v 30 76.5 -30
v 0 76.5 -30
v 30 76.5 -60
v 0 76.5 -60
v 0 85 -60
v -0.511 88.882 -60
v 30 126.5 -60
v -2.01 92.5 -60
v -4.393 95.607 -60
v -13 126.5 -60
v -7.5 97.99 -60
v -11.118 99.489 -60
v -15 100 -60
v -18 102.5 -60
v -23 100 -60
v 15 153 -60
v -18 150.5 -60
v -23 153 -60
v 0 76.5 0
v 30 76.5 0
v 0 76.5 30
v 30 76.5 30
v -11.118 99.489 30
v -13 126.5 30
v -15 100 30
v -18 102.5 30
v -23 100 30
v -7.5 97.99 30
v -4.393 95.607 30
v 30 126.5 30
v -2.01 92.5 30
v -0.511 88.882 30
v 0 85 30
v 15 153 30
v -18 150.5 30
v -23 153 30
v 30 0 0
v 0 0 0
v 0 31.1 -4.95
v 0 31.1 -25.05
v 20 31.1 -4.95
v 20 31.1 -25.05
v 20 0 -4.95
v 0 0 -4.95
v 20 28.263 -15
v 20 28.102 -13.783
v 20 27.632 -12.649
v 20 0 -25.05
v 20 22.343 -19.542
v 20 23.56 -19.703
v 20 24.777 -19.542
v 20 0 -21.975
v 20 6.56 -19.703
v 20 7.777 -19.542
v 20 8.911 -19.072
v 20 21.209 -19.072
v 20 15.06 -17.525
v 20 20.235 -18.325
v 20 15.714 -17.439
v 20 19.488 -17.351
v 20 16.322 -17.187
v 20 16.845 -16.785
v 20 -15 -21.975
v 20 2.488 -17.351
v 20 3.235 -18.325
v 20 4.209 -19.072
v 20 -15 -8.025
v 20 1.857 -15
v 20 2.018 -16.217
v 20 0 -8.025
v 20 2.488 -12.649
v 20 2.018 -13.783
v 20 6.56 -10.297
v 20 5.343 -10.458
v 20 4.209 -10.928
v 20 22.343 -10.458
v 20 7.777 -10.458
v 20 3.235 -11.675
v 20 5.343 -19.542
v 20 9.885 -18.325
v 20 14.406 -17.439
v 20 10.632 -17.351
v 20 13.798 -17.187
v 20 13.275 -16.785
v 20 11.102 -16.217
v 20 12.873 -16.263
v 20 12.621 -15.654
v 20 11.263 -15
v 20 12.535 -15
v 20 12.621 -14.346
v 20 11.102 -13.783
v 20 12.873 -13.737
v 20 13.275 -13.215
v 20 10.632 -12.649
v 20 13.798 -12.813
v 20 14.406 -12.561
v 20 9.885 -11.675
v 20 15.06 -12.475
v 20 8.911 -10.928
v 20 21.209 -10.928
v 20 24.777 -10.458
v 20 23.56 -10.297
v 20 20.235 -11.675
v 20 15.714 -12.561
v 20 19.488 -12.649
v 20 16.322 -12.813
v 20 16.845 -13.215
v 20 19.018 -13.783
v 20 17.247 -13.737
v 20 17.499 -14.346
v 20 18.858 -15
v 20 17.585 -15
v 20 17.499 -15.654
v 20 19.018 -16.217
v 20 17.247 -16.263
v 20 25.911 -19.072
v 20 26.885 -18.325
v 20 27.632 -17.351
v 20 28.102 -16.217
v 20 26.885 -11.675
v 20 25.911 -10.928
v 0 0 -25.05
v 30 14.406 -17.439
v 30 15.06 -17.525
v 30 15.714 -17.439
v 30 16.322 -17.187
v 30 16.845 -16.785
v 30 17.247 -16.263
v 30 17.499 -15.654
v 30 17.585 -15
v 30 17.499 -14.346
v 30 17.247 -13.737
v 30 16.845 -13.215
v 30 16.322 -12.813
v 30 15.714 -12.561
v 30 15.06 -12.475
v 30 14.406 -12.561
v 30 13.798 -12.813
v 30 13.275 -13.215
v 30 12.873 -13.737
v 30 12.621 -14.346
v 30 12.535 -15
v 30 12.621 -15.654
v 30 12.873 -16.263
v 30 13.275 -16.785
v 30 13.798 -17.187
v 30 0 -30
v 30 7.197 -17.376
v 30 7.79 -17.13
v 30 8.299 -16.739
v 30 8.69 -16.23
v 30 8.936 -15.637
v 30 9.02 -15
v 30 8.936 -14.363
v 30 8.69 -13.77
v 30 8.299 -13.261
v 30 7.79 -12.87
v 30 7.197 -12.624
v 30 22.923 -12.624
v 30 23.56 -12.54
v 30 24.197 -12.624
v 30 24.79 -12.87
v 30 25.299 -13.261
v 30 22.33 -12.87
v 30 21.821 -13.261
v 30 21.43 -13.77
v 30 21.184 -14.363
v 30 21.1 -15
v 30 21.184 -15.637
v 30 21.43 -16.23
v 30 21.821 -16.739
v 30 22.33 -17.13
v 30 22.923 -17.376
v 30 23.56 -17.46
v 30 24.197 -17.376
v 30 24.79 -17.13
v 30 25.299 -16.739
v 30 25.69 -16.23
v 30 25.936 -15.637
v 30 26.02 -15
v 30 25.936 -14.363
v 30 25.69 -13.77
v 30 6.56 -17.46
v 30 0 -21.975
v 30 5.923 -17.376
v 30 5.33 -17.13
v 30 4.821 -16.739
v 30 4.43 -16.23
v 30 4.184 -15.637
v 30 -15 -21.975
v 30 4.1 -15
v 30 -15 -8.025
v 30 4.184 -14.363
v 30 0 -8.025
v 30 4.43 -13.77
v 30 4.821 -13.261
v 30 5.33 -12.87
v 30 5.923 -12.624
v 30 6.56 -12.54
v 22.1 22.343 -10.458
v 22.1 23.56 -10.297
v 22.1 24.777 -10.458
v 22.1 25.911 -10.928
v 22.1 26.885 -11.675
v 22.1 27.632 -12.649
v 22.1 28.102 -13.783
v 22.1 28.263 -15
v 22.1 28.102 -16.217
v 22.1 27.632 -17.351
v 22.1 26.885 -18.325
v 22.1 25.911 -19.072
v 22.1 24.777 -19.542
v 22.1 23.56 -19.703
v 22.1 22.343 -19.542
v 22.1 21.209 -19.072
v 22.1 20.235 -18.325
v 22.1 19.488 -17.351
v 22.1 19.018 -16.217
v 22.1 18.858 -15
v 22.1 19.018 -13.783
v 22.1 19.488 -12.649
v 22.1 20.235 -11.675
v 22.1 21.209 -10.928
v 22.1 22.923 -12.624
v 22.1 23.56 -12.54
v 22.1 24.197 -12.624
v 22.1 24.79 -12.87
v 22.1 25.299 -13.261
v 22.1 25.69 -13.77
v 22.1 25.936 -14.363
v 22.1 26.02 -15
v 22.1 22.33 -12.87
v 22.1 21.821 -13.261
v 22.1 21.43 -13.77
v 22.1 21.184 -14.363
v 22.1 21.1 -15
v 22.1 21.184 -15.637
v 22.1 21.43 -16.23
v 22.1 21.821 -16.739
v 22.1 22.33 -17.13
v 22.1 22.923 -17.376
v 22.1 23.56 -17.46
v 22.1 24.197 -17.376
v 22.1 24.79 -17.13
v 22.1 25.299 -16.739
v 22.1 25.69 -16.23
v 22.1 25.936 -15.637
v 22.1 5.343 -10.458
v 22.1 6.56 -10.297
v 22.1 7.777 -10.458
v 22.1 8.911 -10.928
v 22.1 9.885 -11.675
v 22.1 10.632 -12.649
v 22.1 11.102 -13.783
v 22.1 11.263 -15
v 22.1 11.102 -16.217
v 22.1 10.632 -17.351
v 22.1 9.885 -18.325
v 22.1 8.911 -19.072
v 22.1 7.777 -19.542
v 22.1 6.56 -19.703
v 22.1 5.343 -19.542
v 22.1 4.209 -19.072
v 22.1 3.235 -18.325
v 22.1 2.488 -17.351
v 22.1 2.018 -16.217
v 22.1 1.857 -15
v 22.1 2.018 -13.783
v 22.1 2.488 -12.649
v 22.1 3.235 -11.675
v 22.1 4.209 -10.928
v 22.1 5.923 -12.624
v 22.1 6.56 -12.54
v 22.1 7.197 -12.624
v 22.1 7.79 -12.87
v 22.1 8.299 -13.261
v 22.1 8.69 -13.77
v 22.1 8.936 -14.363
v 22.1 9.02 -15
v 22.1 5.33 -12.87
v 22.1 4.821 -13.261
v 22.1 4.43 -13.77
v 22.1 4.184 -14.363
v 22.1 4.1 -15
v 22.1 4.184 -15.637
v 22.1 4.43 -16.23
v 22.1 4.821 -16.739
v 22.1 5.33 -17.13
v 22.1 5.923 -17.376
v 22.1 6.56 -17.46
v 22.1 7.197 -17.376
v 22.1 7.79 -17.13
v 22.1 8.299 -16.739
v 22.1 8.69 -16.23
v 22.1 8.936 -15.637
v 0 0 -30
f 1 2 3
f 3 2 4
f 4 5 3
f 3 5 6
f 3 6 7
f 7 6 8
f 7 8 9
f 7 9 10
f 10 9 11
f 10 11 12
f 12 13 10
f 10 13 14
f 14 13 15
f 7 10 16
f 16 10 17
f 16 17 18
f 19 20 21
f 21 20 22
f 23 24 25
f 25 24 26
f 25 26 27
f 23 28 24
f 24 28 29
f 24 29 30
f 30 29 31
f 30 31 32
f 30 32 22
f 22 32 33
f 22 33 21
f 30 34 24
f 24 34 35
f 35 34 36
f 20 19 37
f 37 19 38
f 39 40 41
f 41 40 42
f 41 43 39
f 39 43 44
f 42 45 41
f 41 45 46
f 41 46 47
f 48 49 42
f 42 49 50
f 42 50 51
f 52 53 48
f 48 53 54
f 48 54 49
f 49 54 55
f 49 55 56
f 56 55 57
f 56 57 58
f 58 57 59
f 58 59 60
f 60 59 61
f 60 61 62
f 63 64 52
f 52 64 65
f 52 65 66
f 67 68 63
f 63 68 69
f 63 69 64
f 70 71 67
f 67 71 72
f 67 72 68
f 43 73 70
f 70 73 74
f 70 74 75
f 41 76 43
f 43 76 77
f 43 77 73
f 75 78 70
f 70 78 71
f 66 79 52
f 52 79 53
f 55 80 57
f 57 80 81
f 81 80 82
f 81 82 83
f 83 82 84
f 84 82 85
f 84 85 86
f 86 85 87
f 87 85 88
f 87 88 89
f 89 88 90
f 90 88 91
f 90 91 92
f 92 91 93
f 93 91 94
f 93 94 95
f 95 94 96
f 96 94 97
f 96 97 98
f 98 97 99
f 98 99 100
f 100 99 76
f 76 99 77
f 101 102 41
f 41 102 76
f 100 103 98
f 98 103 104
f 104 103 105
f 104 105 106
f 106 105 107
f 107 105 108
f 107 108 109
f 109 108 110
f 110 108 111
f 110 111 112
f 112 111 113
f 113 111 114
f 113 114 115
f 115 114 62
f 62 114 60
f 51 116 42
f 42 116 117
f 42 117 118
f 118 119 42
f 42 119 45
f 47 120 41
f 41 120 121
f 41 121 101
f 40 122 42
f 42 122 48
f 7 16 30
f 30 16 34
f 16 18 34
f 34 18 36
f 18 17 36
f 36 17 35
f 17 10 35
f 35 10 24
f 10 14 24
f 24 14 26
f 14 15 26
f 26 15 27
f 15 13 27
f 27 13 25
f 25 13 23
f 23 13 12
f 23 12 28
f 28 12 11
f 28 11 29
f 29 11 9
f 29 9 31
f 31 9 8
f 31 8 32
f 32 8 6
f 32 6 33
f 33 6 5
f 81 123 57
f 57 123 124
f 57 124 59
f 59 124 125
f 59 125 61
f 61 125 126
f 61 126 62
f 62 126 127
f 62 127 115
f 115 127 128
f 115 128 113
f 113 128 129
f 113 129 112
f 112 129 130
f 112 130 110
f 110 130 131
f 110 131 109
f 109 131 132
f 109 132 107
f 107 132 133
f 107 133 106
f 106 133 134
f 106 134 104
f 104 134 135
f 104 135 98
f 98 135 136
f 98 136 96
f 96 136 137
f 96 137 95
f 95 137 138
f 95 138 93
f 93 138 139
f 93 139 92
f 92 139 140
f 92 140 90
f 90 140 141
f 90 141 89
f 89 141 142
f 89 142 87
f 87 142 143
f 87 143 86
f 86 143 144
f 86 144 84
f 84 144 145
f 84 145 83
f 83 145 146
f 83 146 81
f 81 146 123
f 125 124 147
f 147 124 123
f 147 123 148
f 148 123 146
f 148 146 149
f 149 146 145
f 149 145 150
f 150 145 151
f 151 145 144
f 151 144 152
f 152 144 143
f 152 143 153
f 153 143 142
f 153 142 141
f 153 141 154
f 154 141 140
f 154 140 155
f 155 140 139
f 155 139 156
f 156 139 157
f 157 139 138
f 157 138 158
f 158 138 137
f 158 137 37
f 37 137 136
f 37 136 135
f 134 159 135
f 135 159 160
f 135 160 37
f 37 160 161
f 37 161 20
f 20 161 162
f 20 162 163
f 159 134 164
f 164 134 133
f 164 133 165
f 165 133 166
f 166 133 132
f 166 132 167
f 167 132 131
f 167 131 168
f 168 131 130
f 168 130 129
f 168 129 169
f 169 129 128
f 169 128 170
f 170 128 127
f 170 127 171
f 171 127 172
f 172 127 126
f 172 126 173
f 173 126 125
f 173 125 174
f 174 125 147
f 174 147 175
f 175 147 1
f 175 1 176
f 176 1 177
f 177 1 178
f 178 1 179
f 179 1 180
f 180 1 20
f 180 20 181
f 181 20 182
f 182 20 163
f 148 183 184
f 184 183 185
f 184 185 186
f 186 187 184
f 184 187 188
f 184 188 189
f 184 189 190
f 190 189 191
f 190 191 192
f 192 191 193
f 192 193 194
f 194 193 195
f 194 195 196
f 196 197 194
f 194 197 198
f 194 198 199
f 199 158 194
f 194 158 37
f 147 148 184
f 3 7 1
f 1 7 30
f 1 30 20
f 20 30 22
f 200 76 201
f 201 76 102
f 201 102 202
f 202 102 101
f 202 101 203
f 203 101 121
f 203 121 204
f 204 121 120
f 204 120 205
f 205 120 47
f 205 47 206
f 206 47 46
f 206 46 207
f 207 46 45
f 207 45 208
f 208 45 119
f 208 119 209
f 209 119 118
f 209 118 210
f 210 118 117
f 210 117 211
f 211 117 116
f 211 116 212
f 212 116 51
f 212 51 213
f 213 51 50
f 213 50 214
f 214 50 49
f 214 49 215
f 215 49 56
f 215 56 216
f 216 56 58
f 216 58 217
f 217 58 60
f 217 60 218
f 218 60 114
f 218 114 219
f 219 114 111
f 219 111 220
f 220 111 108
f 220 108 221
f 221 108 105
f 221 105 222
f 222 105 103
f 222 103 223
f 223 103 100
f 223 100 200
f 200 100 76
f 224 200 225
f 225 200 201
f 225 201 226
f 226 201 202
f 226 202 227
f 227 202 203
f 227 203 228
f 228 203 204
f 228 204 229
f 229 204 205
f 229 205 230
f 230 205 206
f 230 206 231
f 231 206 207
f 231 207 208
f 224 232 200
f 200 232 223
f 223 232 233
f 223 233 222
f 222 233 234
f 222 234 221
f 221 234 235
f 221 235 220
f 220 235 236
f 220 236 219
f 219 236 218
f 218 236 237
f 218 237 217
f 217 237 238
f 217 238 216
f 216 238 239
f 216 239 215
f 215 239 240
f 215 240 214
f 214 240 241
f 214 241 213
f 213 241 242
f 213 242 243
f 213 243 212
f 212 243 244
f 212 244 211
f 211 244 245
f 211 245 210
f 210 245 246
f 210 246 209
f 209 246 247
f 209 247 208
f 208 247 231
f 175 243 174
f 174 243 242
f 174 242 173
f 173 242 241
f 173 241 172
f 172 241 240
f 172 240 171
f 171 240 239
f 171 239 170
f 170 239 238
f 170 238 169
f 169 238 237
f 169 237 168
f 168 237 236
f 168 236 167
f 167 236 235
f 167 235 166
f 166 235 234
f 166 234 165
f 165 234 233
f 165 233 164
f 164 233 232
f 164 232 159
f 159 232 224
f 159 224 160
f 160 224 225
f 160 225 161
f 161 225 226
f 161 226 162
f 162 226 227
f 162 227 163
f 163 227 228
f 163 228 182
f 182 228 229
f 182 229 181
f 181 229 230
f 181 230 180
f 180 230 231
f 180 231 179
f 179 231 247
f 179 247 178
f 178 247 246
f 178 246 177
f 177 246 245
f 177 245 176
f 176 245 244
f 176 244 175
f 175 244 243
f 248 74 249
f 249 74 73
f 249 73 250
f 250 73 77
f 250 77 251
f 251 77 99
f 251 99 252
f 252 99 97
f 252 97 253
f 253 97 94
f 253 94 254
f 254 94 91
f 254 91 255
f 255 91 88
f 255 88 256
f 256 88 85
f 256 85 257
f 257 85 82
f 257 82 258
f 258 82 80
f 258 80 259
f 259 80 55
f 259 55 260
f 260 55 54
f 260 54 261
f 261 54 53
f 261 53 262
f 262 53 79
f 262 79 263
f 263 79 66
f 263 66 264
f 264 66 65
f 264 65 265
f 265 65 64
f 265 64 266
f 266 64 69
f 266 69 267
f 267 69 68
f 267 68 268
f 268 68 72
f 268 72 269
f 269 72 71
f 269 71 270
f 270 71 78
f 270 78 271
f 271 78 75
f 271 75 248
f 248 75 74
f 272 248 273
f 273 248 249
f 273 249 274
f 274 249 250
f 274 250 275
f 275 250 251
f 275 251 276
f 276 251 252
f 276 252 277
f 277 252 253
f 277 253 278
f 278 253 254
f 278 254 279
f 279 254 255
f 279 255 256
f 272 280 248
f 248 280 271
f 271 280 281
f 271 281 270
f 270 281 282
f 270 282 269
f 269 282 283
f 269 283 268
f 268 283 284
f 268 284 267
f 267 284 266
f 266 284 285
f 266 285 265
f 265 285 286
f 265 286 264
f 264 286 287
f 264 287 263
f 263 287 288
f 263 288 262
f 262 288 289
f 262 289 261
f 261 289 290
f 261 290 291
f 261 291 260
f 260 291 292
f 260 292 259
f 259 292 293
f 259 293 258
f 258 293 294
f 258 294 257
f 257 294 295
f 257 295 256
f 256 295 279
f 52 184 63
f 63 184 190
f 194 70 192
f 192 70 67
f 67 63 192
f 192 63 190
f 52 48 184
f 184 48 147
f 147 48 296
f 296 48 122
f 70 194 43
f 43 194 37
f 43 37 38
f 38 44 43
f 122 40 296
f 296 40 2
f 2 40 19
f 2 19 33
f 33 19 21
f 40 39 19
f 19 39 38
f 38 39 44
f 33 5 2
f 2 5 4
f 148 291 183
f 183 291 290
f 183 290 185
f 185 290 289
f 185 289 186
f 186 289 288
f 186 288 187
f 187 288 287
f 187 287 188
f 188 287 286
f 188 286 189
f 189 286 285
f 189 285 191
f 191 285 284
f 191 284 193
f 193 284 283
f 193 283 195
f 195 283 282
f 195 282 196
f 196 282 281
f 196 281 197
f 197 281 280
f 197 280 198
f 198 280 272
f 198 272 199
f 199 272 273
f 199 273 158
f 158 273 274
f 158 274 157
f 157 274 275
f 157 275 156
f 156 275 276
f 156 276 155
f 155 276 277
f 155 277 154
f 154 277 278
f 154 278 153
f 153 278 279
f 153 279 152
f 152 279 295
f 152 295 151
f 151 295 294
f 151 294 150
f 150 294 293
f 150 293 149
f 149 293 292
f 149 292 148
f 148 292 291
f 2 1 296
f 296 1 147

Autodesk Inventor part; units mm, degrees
ref_plane "YZ Plane" through (0, 0, 0) normal (1, 0, 0) x (0, 1, 0)
ref_plane "XZ Plane" through (0, 0, 0) normal (0, 1, 0) x (-1, 0, 0)
sketch "Sketch1" plane through (0, 0, 0) normal (0, 0, 1) x (1, 0, 0)
  line L0 (0, 0) -> (25, 0)
  line L1 (25, 0) -> (25, 40)
  line L2 (25, 40) -> (0, 40)
  line L3 (0, 40) -> (0, 0)
  dimension "d1" = 25
  dimension "d2" = 40
  dimension "d3" = 25
extrude "Extrusion1" add sketch "Sketch1" against normal blind 30
sketch "Sketch2" plane through (25, 0, 0) normal (1, 0, 0) x (0, 0, -1)
  line L0 (0, 0) -> (30, 0) projected
  circle A0 centre (15, 6.56) radius 2.46
extrude "Extrusion2" cut sketch "Sketch2" against normal blind 30
sketch "Sketch3" plane through (0, 0, 0) normal (-1, 0, 0) x (0, 0, 1)
  line L0 (0, 0) -> (-30, 0) projected
  line L1 (-25.05, 0) -> (-4.95, 0)
  line L2 (-4.95, 0) -> (-4.95, 33.12)
  line L3 (-4.95, 33.12) -> (-25.05, 33.12)
  line L4 (-25.05, 33.12) -> (-25.05, 0)
  dimension "d11" = 20.1
extrude "Extrusion3" cut sketch "Sketch3" against normal blind 20
sketch "Sketch4" plane through (0, 0, 0) normal (0, -1, 0) x (1, 0, 0)
  line L0 (20, -4.95) -> (20, -25.05) projected
  line L1 (20, -15) -> (25, -15)
  line L2 (25, 0) -> (25, -30) projected
  line L3 (20, -8.025) -> (25, -8.025)
  line L4 (25, -8.025) -> (25, -21.975)
  line L5 (25, -21.975) -> (20, -21.975)
  line L6 (20, -21.975) -> (20, -8.025)
  line L7 (20, -8.025) -> (25, -21.975) construction
  line L8 (25, -8.025) -> (20, -21.975) construction
  line L9 (25, -12.54) -> (25, -17.46) projected
  point P0 (0, 0)
  point P1 (22.5, -15)
  dimension "d14" = 13.95
extrude "Extrusion4" add sketch "Sketch4" along normal blind 15
sketch "Sketch5" plane through (20, 0, 0) normal (-1, 0, 0) x (0, 0, 1)
  circle A0 centre (-15, 6.56) radius 2.46 projected
  circle A1 centre (-15, 6.56) radius 4.7025
  circle A2 centre (-15, 6.56) radius 2.46 projected
  circle A3 centre (-15, 6.56) radius 2.46
  point P0 (0, 0)
  dimension "d17" = 9.405
extrude "Extrusion5" cut sketch "Sketch5" against normal blind 2.1
sketch "Sketch6" plane through (25, 0, 0) normal (1, 0, 0) x (0, 0, -1)
  circle A0 centre (15, 6.56) radius 4.7025 projected
  line L0 (15, 6.56) -> (15, 23.56)
  circle A1 centre (15, 23.56) radius 2.46
  point P0 (0, 0)
  dimension "d20" = 17
  dimension "d21" = 4.92
extrude "Extrusion6" cut sketch "Sketch6" against normal blind 10 contours A1
sketch "Sketch7" plane through (20, 0, 0) normal (-1, 0, 0) x (0, 0, 1)
  circle A0 centre (-15, 23.56) radius 2.46 projected
  circle A1 centre (-15, 23.56) radius 4.7025
  point P0 (0, 0)
  dimension "d24" = 9.405
extrude "Extrusion7" cut sketch "Sketch7" against normal blind 2.1
sketch "Sketch9" plane through (25, 0, 0) normal (1, 0, 0) x (0, 0, -1)
  circle A0 centre (15, 6.56) radius 2.46 projected
  circle A1 centre (15, 6.56) radius 2.46
  circle A2 centre (15, 23.56) radius 2.46 projected
  circle A3 centre (15, 23.56) radius 2.46
  line L0 (30, 40) -> (30, 0) projected
  line L1 (30, 0) -> (30, 40)
  line L2 (30, 40) -> (0, 40)
  line L3 (0, 40) -> (0, 0)
  line L4 (0, 0) -> (8.025, 0) projected
  line L5 (21.975, 0) -> (21.975, -15)
  line L6 (21.975, -15) -> (8.025, -15)
  line L7 (8.025, -15) -> (8.025, 0)
  line L8 (0, 0) -> (8.025, 0)
  line L9 (21.975, 0) -> (30, 0)
extrude "Extrusion8" add sketch "Sketch9" along normal blind 5
sketch "Sketch10" plane through (0, 40, 0) normal (0, 1, 0) x (1, 0, 0)
  line L0 (0, 30) -> (30, 30) projected
  line L1 (30, 0) -> (0, 0) projected
  line L2 (0, 30) -> (30, 30)
  line L3 (30, 30) -> (30, 0)
  line L4 (30, 0) -> (0, 0)
  line L5 (0, 0) -> (0, 30)
extrude "Extrusion9" add sketch "Sketch10" along normal blind 30
sketch "Sketch12" plane through (30, 0, 0) normal (1, 0, 0) x (0, 0, -1)
  circle A0 centre (15, 6.56) radius 2.46 projected
  line L0 (15, 6.56) -> (15, 15.06)
  circle A1 centre (15, 15.06) radius 2.525
  point P0 (0, 0)
  dimension "d31" = 8.5
  dimension "d33" = 5.05
extrude "Extrusion10" cut sketch "Sketch12" against normal blind 30 contours A1
sketch "Sketch14" plane through (0, 0, 0) normal (0, 0, 1) x (1, 0, 0)
  line L0 (30, 70) -> (0, 70) projected
  line L1 (0, 70) -> (0, 85)
  line L2 (-15, 100) -> (-23, 100)
  line L3 (30, 0) -> (30, 70) projected
  line L4 (30, 122.5) -> (30, 70)
  arc A0 (0, 85) -> (-15, 100) centre (-15, 85) ccw
  line L5 (30, 105) -> (30, 100)
  line L6 (-23, 153) -> (15, 153)
  line L7 (-18, 150.5) -> (-23, 153)
  line L8 (-18, 102.5) -> (-23, 100)
  line L9 (-18, 102.5) -> (-13, 126.5)
  line L10 (-13, 126.5) -> (-18, 150.5)
  line L11 (30, 126.5) -> (15, 153)
  line L12 (30, 122.5) -> (30, 126.5)
  point P0 (0, 0)
  point P1 (0, 100)
  dimension "d47" = 30
  dimension "d54" = 15
extrude "Extrusion12" add sketch "Sketch14" against normal blind 30
sketch "Sketch15" plane through (0, 0, -25.05) normal (-1, 0, 0) x (0, 0, 1)
  line L0 (0, 33.12) -> (20.1, 33.12) projected
  line L1 (20.1, 33.12) -> (20.1, 0) projected
  line L2 (0, 33.12) -> (20.1, 33.12)
  line L3 (20.1, 33.12) -> (20.1, 31.1)
  line L4 (20.1, 31.1) -> (0, 31.1)
  line L5 (0, 31.1) -> (0, 33.12)
  point P0 (25.05, 0)
  dimension "d57" = 2.02
extrude "Extrusion13" add sketch "Sketch15" against normal blind 20
sketch "Sketch25" plane through (0, 0, 0) normal (0, 0, 1) x (1, 0, 0)
  line L0 (-15, 100) -> (-23, 100) projected
  line L1 (-15, 100) -> (-23, 100)
  line L2 (-23, 100) -> (-18, 102.5) projected
  line L3 (-23, 100) -> (-18, 102.5)
  line L4 (-18, 102.5) -> (-13, 126.5) projected
  line L5 (-18, 102.5) -> (-13, 126.5)
  line L6 (-13, 126.5) -> (-18, 150.5) projected
  line L7 (-13, 126.5) -> (-18, 150.5)
  line L8 (-18, 150.5) -> (-23, 153) projected
  line L9 (-18, 150.5) -> (-23, 153)
  line L10 (-23, 153) -> (15, 153) projected
  line L11 (-23, 153) -> (15, 153)
  line L12 (15, 153) -> (30, 126.5) projected
  line L13 (15, 153) -> (30, 126.5)
  line L14 (30, 126.5) -> (30, 76.5)
  line L15 (30, 0) -> (30, 126.5) projected
  line L16 (30, 76.5) -> (0, 76.5)
  arc A0 (0, 85) -> (-15, 100) centre (-15, 85) ccw projected
  line L17 (0, 76.5) -> (0, 85)
  line L18 (0, 85) -> (0, 0) projected
  arc A1 (0, 85) -> (-15, 100) centre (-15, 85) ccw
  dimension "d90" = 50
extrude "Extrusion14" add sketch "Sketch25" along normal blind 30
ref_plane "Work Plane1" through (0, 0, -15) normal (0, 0, 1) x (1, 0, 0)
mirror "Mirror1" about plane through (0, 0, -15) normal (0, 0, 1) of "Extrusion14"
properties part number "rec_a_48mm_x_90mm"
